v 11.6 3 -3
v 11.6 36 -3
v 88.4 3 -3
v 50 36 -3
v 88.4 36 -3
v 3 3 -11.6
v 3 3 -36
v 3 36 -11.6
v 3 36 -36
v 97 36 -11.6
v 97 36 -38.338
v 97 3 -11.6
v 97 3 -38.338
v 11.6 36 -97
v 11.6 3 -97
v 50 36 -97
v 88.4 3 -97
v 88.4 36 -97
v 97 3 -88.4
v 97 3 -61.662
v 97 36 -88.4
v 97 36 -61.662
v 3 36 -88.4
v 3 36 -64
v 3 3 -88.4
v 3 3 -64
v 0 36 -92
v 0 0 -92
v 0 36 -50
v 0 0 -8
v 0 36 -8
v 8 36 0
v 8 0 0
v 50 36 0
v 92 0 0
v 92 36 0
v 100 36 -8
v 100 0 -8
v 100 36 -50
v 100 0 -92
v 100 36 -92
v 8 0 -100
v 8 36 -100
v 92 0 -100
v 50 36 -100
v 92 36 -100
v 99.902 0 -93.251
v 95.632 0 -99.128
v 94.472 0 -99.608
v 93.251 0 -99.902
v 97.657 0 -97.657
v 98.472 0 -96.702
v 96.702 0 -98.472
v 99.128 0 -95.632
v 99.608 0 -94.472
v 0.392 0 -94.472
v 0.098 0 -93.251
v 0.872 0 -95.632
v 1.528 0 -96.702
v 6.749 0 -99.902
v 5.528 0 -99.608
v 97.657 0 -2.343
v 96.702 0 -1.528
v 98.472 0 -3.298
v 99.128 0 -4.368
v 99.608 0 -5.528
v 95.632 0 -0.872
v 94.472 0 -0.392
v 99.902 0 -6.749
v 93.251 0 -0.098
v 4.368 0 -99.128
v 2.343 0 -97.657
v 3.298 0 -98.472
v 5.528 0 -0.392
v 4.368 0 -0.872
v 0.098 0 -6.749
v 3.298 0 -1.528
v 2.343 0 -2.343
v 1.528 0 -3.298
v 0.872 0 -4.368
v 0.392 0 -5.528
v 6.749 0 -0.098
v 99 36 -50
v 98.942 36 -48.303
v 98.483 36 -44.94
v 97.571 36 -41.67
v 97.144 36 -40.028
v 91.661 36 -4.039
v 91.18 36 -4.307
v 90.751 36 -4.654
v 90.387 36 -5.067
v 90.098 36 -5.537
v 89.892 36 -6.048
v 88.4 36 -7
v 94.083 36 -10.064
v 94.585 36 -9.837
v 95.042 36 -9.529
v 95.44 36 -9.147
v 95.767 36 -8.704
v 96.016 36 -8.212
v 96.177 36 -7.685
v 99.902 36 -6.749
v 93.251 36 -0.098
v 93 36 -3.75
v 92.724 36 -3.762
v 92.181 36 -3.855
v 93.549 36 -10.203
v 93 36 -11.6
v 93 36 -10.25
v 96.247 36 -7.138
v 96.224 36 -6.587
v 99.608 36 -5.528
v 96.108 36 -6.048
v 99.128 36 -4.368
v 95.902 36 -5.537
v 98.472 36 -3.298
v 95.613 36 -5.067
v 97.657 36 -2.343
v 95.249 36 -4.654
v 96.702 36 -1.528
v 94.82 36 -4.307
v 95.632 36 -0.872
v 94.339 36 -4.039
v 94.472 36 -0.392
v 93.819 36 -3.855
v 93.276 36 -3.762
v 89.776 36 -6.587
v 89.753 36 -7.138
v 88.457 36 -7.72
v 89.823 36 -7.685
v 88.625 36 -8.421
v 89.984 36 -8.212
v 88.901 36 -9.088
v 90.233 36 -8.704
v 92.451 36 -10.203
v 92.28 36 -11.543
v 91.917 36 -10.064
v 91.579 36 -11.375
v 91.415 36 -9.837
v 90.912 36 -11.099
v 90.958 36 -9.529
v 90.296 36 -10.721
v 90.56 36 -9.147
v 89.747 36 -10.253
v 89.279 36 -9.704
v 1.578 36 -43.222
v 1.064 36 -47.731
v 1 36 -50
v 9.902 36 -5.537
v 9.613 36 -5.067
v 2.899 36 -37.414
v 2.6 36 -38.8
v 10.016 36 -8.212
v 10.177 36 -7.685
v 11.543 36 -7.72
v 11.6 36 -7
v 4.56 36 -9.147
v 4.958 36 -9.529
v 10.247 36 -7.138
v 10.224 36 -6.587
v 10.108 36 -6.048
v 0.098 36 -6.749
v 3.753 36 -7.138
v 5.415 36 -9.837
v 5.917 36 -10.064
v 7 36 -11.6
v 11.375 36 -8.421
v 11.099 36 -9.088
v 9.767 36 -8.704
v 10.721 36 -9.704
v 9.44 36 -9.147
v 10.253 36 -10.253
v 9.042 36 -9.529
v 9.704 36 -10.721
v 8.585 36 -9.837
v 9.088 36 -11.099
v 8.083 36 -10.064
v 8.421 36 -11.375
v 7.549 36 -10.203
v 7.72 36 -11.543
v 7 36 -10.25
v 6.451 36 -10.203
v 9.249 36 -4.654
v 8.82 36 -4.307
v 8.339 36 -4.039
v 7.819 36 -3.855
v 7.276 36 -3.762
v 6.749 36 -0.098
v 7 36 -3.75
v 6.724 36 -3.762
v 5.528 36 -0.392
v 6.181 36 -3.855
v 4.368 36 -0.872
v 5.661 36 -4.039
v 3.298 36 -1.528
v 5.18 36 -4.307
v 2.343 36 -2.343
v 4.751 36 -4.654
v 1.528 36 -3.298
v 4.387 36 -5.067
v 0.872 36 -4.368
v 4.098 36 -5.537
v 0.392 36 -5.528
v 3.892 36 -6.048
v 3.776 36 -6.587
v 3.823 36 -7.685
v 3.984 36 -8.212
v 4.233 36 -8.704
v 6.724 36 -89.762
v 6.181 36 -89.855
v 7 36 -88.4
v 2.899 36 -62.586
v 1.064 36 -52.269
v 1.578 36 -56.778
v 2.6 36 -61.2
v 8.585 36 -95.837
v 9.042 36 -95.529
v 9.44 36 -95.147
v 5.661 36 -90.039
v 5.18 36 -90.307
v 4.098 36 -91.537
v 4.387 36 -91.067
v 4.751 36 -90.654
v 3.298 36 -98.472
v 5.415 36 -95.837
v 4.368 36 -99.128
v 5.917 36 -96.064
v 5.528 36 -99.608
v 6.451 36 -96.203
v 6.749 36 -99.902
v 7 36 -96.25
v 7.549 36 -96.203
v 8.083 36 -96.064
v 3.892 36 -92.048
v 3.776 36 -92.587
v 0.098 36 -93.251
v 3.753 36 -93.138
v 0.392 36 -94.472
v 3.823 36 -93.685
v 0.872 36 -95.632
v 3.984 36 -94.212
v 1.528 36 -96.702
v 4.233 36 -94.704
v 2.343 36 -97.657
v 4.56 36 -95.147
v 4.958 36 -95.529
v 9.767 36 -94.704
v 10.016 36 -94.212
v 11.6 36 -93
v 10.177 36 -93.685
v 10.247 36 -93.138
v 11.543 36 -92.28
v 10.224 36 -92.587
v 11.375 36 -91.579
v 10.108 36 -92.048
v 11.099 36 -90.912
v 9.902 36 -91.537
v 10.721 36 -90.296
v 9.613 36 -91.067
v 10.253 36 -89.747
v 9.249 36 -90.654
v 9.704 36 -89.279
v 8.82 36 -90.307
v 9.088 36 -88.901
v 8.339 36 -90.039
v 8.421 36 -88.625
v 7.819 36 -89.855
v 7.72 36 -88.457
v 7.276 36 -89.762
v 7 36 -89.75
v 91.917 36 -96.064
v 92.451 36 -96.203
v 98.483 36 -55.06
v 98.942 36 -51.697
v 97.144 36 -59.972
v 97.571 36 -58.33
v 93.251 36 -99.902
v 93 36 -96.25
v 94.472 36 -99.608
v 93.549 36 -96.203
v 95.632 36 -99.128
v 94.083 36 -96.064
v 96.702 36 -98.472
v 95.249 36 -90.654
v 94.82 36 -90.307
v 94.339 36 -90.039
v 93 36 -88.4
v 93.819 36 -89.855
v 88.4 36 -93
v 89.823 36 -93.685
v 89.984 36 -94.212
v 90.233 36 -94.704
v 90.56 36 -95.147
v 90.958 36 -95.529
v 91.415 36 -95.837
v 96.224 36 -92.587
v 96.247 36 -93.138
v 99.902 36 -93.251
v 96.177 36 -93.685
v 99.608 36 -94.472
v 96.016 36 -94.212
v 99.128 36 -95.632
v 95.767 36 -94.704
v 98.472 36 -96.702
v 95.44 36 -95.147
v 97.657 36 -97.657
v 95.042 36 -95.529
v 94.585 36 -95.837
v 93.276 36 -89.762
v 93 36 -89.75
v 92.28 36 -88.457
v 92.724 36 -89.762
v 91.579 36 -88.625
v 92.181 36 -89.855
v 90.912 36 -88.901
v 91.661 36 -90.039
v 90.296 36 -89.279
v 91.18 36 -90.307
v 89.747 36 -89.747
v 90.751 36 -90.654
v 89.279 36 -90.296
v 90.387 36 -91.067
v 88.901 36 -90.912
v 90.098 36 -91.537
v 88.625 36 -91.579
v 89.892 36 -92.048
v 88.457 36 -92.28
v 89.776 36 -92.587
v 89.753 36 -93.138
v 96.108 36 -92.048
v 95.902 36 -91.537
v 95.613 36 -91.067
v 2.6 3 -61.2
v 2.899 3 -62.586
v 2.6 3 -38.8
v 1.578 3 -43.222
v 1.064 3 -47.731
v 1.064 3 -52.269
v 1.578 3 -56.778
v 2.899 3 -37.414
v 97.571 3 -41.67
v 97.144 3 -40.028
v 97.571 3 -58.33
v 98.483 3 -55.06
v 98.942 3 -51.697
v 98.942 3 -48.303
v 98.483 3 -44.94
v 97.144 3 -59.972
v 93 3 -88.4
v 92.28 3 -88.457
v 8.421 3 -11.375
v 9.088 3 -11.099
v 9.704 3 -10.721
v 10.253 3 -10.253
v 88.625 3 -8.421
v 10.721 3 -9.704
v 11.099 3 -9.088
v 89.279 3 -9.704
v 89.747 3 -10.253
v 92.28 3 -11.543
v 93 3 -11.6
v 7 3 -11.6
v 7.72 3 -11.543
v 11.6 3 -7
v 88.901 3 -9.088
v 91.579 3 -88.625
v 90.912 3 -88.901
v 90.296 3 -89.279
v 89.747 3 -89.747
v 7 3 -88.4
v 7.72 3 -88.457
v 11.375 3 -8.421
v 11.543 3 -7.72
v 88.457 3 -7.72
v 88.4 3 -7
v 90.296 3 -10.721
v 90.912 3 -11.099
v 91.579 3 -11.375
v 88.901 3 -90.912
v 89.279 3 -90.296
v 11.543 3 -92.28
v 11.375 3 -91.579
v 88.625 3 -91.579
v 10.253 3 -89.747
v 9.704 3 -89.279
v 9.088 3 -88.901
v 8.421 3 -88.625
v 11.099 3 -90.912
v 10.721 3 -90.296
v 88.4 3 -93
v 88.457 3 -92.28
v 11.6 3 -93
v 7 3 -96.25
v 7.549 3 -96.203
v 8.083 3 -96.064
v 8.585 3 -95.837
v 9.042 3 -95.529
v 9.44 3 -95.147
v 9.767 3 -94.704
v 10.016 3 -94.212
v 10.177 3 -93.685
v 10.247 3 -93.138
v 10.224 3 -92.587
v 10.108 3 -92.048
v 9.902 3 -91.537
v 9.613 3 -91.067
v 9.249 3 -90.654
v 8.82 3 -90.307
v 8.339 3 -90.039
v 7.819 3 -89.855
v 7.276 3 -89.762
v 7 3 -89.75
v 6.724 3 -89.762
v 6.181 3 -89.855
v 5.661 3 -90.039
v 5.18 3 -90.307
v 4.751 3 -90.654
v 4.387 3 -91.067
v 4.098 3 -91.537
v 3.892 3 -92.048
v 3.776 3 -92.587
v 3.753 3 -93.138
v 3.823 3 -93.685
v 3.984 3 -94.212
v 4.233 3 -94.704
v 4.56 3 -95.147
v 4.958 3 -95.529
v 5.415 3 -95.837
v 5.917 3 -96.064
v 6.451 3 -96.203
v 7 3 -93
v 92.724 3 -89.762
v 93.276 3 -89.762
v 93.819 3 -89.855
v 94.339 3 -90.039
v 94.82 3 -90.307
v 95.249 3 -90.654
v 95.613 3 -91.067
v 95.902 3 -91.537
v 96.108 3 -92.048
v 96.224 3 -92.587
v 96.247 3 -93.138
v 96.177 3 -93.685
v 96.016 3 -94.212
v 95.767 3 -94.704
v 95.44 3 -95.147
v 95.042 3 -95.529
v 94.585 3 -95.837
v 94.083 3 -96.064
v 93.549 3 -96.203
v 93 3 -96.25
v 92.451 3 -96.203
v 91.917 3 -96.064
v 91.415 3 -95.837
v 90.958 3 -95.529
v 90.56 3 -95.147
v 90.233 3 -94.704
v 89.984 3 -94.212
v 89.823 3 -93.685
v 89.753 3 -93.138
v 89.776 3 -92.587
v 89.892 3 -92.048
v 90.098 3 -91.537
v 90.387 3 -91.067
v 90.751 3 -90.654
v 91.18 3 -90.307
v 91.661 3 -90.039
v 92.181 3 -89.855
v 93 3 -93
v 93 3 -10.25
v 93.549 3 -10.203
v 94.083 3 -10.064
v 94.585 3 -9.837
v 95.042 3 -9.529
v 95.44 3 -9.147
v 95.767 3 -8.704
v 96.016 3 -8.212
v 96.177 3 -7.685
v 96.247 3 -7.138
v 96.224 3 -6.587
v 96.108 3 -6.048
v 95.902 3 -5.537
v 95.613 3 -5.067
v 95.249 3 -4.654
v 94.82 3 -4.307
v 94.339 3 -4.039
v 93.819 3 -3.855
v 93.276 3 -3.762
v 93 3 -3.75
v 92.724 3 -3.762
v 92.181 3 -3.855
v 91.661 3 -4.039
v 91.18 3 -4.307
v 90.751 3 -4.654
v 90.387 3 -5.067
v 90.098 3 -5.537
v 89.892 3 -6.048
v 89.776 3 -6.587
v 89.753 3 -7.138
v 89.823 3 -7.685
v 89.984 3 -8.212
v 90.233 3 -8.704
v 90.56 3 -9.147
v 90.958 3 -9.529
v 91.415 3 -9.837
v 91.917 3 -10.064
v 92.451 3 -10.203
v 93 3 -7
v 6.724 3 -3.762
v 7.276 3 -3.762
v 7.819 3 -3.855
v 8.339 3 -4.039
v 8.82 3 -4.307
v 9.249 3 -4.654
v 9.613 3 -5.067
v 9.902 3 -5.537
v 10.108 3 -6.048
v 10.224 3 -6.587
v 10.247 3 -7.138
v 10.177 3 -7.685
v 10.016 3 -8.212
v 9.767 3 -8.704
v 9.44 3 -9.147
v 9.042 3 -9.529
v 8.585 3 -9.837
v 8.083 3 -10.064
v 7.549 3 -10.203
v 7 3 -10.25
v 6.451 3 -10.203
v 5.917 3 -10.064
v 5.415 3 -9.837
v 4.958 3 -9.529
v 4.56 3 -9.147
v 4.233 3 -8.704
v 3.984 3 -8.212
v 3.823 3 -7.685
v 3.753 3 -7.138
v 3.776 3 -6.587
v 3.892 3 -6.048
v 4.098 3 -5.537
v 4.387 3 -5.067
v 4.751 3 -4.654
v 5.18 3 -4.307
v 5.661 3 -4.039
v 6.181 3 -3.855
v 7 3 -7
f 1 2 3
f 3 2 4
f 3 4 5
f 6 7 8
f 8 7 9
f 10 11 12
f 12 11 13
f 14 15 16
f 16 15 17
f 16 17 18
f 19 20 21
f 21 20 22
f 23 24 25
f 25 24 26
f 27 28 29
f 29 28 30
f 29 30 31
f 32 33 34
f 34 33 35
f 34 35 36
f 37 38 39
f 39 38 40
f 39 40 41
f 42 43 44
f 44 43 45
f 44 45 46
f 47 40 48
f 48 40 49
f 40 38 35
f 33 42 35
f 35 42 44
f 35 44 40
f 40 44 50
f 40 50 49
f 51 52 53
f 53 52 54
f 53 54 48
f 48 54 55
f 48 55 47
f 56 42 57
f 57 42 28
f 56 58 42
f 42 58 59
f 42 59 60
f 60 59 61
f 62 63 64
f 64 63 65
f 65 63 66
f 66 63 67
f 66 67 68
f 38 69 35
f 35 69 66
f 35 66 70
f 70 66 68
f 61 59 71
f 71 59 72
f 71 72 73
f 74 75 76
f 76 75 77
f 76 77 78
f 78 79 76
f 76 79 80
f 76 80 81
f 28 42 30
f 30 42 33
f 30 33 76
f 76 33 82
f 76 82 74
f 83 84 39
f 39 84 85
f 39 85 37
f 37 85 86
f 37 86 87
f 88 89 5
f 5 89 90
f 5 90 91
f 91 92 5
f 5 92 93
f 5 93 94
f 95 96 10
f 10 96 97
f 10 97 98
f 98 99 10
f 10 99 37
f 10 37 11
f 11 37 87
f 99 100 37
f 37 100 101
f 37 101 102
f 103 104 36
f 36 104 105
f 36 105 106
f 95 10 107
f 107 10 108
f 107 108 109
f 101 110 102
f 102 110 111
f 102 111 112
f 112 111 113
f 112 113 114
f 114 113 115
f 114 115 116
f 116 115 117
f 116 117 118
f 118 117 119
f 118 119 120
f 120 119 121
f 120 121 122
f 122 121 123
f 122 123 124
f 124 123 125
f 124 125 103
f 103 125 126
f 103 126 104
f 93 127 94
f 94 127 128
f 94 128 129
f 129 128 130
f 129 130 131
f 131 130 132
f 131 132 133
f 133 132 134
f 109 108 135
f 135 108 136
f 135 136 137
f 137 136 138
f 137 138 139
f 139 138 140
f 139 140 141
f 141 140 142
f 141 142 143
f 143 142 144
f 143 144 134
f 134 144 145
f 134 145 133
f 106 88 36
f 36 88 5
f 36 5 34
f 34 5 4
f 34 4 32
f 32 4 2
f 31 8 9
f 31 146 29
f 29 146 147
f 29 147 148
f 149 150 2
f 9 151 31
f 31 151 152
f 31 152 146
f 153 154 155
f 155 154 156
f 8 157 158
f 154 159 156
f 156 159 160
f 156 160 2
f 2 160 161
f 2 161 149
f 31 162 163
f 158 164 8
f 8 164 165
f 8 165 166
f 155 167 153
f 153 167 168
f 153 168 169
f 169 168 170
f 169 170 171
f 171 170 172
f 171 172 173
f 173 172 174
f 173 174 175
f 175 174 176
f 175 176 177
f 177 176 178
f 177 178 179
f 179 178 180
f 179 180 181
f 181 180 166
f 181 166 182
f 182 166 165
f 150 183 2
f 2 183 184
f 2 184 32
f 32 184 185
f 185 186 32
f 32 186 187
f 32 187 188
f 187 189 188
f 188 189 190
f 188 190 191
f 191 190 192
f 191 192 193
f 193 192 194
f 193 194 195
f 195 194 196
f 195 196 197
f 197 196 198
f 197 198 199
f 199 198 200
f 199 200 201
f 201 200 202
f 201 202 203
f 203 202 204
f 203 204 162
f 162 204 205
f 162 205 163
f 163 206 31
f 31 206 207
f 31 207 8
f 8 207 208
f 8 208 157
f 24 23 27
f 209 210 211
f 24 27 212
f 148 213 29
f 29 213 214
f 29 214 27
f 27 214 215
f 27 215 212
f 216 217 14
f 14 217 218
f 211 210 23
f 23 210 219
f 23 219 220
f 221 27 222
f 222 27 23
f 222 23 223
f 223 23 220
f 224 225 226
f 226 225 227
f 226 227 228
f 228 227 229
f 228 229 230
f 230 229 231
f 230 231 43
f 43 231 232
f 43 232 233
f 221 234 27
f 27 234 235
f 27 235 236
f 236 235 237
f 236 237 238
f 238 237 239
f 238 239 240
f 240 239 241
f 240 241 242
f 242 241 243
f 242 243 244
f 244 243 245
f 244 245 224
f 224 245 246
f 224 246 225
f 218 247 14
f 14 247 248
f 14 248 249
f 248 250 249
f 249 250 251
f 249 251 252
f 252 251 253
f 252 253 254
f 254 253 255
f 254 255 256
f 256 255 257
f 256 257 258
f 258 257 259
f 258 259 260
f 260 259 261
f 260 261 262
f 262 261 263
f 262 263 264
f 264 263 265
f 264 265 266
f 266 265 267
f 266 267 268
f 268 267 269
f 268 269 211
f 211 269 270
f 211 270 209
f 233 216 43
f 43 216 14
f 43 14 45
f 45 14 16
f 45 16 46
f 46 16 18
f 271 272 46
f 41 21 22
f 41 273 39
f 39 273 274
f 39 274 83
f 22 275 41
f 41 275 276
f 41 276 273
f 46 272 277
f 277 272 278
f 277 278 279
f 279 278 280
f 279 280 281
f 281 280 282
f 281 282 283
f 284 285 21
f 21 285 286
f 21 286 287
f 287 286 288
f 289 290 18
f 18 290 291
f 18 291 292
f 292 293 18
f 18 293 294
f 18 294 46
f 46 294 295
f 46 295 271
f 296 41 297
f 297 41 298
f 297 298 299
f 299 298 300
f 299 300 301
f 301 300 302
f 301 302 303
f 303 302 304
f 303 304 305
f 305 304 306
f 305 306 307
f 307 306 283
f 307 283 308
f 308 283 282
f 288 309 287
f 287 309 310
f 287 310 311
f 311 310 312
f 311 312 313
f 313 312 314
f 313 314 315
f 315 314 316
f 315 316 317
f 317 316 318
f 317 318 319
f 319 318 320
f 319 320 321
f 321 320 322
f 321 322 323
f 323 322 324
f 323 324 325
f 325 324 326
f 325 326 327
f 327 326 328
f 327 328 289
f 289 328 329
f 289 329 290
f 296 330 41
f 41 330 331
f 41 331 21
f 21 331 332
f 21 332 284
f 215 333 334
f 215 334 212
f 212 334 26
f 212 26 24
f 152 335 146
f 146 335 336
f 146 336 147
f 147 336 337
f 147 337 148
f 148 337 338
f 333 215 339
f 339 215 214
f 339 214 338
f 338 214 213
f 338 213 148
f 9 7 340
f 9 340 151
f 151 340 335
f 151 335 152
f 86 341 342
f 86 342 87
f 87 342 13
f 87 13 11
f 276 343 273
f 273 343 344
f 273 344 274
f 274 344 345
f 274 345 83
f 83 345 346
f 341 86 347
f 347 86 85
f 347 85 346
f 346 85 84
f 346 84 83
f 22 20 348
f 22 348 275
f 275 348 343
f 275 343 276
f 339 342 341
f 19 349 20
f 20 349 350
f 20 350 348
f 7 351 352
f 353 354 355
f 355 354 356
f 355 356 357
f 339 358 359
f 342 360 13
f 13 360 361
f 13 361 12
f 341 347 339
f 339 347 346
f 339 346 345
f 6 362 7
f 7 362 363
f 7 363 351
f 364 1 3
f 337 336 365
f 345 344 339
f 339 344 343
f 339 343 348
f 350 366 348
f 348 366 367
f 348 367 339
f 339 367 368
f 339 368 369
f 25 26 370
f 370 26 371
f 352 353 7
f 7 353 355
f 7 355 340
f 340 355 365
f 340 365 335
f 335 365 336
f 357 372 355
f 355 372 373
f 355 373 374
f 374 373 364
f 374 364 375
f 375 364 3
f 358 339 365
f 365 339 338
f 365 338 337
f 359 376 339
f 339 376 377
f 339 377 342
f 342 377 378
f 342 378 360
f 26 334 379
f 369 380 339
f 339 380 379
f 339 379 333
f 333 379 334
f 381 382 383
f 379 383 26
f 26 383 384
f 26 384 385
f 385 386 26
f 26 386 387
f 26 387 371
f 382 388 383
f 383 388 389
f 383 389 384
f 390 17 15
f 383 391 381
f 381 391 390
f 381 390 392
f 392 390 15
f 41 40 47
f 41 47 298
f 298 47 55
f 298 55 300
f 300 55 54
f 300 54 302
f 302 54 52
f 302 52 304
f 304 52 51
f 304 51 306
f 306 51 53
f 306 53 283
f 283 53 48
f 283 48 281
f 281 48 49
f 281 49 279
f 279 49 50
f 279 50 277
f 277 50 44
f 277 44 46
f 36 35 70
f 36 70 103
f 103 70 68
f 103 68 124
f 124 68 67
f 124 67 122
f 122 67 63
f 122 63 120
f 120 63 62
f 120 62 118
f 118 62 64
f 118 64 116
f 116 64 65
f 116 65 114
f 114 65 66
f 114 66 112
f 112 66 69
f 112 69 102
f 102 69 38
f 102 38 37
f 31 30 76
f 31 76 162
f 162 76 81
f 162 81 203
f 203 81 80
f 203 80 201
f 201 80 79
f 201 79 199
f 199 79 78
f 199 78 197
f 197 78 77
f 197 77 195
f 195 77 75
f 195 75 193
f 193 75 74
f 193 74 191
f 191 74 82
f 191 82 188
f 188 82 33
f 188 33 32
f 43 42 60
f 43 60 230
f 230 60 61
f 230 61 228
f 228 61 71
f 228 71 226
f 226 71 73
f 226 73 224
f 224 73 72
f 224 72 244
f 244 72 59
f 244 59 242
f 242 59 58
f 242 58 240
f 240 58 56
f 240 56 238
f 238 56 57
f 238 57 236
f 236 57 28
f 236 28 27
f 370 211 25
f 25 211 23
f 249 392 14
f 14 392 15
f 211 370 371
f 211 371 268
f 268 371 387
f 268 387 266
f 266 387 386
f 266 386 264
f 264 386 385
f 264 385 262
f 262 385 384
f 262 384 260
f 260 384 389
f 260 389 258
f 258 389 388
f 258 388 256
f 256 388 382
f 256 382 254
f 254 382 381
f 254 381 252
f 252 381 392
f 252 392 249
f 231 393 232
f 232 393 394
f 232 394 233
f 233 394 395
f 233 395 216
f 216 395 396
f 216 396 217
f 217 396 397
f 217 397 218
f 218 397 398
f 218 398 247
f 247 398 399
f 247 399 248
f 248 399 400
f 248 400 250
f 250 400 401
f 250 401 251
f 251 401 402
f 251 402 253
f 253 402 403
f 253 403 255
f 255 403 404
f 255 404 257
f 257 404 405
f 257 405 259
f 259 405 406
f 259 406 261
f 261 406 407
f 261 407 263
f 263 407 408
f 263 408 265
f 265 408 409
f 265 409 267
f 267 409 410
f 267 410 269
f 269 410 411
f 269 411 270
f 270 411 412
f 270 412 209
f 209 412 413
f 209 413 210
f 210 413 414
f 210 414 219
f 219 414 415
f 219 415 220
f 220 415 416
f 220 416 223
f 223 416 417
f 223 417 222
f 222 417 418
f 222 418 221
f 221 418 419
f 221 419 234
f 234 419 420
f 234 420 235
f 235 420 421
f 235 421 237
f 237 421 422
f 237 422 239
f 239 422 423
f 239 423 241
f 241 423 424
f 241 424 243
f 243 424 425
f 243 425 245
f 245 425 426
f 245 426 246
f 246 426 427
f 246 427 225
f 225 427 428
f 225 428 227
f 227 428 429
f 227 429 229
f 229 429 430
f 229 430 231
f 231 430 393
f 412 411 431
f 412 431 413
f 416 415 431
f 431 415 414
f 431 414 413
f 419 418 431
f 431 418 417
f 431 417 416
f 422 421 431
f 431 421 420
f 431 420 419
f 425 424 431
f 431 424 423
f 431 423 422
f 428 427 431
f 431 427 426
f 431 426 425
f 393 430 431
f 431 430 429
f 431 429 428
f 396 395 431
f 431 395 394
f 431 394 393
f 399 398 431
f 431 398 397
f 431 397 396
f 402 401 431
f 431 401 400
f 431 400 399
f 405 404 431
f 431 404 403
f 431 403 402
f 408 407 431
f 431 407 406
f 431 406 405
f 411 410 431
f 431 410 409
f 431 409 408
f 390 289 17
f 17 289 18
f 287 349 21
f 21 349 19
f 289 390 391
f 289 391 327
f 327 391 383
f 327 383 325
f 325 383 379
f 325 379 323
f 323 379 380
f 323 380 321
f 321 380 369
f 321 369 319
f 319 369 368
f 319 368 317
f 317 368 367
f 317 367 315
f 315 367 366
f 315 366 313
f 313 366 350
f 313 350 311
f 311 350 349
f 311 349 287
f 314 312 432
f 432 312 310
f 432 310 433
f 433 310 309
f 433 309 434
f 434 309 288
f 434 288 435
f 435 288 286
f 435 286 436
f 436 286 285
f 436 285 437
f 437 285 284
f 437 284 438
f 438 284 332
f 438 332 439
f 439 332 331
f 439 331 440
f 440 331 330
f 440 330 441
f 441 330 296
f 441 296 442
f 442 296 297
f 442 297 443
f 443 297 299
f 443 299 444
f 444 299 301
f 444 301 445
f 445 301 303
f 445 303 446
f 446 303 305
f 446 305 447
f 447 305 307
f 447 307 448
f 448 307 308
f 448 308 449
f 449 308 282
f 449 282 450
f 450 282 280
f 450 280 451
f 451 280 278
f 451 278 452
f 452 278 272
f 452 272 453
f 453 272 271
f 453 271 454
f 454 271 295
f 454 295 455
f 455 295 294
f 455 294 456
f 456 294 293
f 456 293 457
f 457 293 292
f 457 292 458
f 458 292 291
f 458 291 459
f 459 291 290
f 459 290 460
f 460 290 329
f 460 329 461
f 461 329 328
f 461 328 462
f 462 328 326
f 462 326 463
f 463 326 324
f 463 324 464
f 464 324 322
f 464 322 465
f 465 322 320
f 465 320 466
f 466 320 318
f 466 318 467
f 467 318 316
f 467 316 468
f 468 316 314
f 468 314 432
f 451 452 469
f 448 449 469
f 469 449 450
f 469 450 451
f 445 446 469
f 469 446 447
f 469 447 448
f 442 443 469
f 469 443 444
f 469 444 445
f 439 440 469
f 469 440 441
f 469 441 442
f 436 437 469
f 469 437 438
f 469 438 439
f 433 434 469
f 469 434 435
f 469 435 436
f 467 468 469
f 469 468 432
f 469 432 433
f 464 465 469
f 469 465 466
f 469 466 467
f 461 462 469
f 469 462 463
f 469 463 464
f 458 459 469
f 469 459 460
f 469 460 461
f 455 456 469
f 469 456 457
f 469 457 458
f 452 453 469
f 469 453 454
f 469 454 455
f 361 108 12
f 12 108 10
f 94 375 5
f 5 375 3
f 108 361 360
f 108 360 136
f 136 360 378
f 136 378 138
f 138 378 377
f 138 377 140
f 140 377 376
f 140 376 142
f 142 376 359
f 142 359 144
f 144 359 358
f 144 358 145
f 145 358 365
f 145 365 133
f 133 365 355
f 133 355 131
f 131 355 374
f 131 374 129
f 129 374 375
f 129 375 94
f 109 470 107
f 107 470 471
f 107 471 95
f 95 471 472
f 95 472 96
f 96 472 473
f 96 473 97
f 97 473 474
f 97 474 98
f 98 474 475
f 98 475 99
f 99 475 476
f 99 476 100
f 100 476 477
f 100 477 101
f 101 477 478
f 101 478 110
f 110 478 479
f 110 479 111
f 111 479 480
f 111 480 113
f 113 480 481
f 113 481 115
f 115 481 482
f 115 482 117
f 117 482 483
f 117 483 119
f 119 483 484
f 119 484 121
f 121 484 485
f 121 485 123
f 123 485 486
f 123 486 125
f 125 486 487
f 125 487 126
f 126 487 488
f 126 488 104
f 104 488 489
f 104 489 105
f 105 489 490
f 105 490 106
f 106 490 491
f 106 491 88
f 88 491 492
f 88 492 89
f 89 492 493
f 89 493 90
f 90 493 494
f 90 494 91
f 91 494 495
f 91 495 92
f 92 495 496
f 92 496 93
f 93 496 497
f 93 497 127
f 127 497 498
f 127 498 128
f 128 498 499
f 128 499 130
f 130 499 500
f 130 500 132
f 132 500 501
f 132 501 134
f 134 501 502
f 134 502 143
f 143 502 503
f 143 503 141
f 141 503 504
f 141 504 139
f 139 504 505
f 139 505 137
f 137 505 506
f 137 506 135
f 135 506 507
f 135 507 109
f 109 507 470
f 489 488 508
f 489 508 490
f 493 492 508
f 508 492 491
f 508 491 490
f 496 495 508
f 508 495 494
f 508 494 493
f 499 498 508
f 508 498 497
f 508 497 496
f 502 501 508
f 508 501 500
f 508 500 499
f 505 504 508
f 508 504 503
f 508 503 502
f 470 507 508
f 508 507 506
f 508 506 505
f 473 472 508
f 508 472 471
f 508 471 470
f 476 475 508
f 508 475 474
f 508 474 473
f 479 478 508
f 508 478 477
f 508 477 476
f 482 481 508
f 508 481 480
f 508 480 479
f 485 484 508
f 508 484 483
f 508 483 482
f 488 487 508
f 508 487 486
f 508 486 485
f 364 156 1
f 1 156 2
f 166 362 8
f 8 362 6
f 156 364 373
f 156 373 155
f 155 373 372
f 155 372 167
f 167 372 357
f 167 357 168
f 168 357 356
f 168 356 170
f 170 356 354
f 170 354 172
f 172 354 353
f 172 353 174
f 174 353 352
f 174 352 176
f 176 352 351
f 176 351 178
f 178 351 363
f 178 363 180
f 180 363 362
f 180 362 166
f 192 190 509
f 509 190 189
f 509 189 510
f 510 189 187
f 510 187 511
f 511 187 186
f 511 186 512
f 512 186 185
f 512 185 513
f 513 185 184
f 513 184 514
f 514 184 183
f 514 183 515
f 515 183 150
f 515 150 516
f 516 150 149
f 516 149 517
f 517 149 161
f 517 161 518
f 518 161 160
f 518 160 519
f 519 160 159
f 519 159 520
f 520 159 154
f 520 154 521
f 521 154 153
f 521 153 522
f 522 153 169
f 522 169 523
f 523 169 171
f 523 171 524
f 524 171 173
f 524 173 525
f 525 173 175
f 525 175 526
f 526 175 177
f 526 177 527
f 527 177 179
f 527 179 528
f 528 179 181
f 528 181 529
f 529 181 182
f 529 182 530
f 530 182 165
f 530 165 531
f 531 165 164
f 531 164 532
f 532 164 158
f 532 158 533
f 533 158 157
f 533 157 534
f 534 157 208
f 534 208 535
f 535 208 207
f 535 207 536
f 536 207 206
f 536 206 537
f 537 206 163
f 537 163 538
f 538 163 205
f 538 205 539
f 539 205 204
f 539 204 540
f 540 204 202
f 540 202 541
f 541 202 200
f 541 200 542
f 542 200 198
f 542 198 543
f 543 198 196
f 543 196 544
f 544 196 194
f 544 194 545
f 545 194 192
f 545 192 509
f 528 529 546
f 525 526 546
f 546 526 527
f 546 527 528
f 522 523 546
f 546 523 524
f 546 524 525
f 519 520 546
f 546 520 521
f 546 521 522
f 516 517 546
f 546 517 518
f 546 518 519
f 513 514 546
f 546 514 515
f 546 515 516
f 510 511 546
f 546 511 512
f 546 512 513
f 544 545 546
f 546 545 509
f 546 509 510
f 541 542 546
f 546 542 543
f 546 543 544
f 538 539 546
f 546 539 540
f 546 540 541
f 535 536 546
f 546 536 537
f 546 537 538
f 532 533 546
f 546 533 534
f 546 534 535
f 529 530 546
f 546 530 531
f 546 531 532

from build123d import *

# Parameters (mm, degrees)
SKETCH_1_W      = 100
SKETCH_1_H      = 100
EXTRUDE_1_DEPTH = 3
SKETCH_4_W      = 100
SKETCH_4_H      = 100
EXTRUDE_4_DEPTH = 33
FILLET_3_R      = 8
SKETCH_7_R      = 3.25
EXTRUDE_6_DEPTH = 33


with BuildPart() as part:
    # Эскиз1 → Бобышка-Вытянуть1 (new body)
    with BuildSketch(Plane(origin=(0, 0, 0), x_dir=(1, 0, 0), z_dir=(0, 1, 0))):
        with Locations((50, 50)):
            Rectangle(SKETCH_1_W, SKETCH_1_H)
    extrude(amount=EXTRUDE_1_DEPTH)

    # Эскиз4 → Бобышка-Вытянуть4 (add)
    with BuildSketch(Plane(origin=(0, 3, 0), x_dir=(1, 0, 0), z_dir=(0, 1, 0))):
        with Locations((50, 50)):
            Rectangle(SKETCH_4_W, SKETCH_4_H)
        with BuildLine():
            Line((97, 97), (3, 97))
            Line((3, 97), (3, 64))
            ThreePointArc((3, 64), (2.899494937, 62.585786438), (2.6, 61.2))
            ThreePointArc((2.6, 61.2), (1, 50), (2.6, 38.8))
            ThreePointArc((2.6, 38.8), (2.899494937, 37.414213562), (3, 36))
            Line((3, 36), (3, 3))
            Line((3, 3), (97, 3))
            Line((97, 3), (97, 38.33809621))
            ThreePointArc((97, 38.33809621), (97.143892394, 40.02840472), (97.571428571, 41.670068722))
            ThreePointArc((97.571428571, 41.670068722), (99, 50), (97.571428571, 58.329931278))
            ThreePointArc((97.571428571, 58.329931278), (97.143892394, 59.97159528), (97, 61.66190379))
            Line((97, 61.66190379), (97, 97))
        make_face(mode=Mode.SUBTRACT)
    extrude(amount=EXTRUDE_4_DEPTH)

    # Скругление3
    fillet_3_edges = [part.edges().sort_by_distance(p)[0] for p in [
        (0, 18, -100),
        (100, 18, -100),
        (100, 18, 0),
        (0, 18, 0),
    ]]
    fillet(fillet_3_edges, radius=FILLET_3_R)

    # Эскиз7 → Бобышка-Вытянуть6 (add)
    # profile 1 of 4: a face of its own
    with BuildSketch(Plane(origin=(0, 3, 0), x_dir=(1, 0, 0), z_dir=(0, 1, 0))):
        with BuildLine():
            Line((7, 88.4), (2.4, 88.4))
            Line((2.4, 88.4), (2.4, 97.6))
            Line((2.4, 97.6), (11.6, 97.6))
            Line((11.6, 97.6), (11.6, 93))
            ThreePointArc((11.6, 93), (10.252691193, 89.747308807), (7, 88.4))
        make_face()
        with Locations(Location((7, 93, 0), (0, 0, 270))):
            Circle(SKETCH_7_R, mode=Mode.SUBTRACT)
    # profile 2 of 4: a face of its own
    with BuildSketch(Plane(origin=(0, 3, 0), x_dir=(1, 0, 0), z_dir=(0, 1, 0))):
        with BuildLine():
            Line((93, 88.4), (97.6, 88.4))
            Line((97.6, 88.4), (97.6, 97.6))
            Line((97.6, 97.6), (88.4, 97.6))
            Line((88.4, 97.6), (88.4, 93))
            ThreePointArc((88.4, 93), (89.747308807, 89.747308807), (93, 88.4))
        make_face()
        with Locations(Location((93, 93, 0), (0, 0, 90))):
            Circle(SKETCH_7_R, mode=Mode.SUBTRACT)
    # profile 3 of 4: a face of its own
    with BuildSketch(Plane(origin=(0, 3, 0), x_dir=(1, 0, 0), z_dir=(0, 1, 0))):
        with BuildLine():
            Line((88.4, 7), (88.4, 2.4))
            Line((88.4, 2.4), (97.6, 2.4))
            Line((97.6, 2.4), (97.6, 11.6))
            Line((97.6, 11.6), (93, 11.6))
            ThreePointArc((93, 11.6), (89.747308807, 10.252691193), (88.4, 7))
        make_face()
        with Locations(Location((93, 7, 0), (0, 0, 270))):
            Circle(SKETCH_7_R, mode=Mode.SUBTRACT)
    # profile 4 of 4: a face of its own
    with BuildSketch(Plane(origin=(0, 3, 0), x_dir=(1, 0, 0), z_dir=(0, 1, 0))):
        with BuildLine():
            Line((11.6, 7), (11.6, 2.4))
            Line((11.6, 2.4), (2.4, 2.4))
            Line((2.4, 2.4), (2.4, 11.6))
            Line((2.4, 11.6), (7, 11.6))
            ThreePointArc((7, 11.6), (10.252691193, 10.252691193), (11.6, 7))
        make_face()
        with Locations(Location((7, 7, 0), (0, 0, 90))):
            Circle(SKETCH_7_R, mode=Mode.SUBTRACT)
    extrude(amount=EXTRUDE_6_DEPTH)


solid = part.part
